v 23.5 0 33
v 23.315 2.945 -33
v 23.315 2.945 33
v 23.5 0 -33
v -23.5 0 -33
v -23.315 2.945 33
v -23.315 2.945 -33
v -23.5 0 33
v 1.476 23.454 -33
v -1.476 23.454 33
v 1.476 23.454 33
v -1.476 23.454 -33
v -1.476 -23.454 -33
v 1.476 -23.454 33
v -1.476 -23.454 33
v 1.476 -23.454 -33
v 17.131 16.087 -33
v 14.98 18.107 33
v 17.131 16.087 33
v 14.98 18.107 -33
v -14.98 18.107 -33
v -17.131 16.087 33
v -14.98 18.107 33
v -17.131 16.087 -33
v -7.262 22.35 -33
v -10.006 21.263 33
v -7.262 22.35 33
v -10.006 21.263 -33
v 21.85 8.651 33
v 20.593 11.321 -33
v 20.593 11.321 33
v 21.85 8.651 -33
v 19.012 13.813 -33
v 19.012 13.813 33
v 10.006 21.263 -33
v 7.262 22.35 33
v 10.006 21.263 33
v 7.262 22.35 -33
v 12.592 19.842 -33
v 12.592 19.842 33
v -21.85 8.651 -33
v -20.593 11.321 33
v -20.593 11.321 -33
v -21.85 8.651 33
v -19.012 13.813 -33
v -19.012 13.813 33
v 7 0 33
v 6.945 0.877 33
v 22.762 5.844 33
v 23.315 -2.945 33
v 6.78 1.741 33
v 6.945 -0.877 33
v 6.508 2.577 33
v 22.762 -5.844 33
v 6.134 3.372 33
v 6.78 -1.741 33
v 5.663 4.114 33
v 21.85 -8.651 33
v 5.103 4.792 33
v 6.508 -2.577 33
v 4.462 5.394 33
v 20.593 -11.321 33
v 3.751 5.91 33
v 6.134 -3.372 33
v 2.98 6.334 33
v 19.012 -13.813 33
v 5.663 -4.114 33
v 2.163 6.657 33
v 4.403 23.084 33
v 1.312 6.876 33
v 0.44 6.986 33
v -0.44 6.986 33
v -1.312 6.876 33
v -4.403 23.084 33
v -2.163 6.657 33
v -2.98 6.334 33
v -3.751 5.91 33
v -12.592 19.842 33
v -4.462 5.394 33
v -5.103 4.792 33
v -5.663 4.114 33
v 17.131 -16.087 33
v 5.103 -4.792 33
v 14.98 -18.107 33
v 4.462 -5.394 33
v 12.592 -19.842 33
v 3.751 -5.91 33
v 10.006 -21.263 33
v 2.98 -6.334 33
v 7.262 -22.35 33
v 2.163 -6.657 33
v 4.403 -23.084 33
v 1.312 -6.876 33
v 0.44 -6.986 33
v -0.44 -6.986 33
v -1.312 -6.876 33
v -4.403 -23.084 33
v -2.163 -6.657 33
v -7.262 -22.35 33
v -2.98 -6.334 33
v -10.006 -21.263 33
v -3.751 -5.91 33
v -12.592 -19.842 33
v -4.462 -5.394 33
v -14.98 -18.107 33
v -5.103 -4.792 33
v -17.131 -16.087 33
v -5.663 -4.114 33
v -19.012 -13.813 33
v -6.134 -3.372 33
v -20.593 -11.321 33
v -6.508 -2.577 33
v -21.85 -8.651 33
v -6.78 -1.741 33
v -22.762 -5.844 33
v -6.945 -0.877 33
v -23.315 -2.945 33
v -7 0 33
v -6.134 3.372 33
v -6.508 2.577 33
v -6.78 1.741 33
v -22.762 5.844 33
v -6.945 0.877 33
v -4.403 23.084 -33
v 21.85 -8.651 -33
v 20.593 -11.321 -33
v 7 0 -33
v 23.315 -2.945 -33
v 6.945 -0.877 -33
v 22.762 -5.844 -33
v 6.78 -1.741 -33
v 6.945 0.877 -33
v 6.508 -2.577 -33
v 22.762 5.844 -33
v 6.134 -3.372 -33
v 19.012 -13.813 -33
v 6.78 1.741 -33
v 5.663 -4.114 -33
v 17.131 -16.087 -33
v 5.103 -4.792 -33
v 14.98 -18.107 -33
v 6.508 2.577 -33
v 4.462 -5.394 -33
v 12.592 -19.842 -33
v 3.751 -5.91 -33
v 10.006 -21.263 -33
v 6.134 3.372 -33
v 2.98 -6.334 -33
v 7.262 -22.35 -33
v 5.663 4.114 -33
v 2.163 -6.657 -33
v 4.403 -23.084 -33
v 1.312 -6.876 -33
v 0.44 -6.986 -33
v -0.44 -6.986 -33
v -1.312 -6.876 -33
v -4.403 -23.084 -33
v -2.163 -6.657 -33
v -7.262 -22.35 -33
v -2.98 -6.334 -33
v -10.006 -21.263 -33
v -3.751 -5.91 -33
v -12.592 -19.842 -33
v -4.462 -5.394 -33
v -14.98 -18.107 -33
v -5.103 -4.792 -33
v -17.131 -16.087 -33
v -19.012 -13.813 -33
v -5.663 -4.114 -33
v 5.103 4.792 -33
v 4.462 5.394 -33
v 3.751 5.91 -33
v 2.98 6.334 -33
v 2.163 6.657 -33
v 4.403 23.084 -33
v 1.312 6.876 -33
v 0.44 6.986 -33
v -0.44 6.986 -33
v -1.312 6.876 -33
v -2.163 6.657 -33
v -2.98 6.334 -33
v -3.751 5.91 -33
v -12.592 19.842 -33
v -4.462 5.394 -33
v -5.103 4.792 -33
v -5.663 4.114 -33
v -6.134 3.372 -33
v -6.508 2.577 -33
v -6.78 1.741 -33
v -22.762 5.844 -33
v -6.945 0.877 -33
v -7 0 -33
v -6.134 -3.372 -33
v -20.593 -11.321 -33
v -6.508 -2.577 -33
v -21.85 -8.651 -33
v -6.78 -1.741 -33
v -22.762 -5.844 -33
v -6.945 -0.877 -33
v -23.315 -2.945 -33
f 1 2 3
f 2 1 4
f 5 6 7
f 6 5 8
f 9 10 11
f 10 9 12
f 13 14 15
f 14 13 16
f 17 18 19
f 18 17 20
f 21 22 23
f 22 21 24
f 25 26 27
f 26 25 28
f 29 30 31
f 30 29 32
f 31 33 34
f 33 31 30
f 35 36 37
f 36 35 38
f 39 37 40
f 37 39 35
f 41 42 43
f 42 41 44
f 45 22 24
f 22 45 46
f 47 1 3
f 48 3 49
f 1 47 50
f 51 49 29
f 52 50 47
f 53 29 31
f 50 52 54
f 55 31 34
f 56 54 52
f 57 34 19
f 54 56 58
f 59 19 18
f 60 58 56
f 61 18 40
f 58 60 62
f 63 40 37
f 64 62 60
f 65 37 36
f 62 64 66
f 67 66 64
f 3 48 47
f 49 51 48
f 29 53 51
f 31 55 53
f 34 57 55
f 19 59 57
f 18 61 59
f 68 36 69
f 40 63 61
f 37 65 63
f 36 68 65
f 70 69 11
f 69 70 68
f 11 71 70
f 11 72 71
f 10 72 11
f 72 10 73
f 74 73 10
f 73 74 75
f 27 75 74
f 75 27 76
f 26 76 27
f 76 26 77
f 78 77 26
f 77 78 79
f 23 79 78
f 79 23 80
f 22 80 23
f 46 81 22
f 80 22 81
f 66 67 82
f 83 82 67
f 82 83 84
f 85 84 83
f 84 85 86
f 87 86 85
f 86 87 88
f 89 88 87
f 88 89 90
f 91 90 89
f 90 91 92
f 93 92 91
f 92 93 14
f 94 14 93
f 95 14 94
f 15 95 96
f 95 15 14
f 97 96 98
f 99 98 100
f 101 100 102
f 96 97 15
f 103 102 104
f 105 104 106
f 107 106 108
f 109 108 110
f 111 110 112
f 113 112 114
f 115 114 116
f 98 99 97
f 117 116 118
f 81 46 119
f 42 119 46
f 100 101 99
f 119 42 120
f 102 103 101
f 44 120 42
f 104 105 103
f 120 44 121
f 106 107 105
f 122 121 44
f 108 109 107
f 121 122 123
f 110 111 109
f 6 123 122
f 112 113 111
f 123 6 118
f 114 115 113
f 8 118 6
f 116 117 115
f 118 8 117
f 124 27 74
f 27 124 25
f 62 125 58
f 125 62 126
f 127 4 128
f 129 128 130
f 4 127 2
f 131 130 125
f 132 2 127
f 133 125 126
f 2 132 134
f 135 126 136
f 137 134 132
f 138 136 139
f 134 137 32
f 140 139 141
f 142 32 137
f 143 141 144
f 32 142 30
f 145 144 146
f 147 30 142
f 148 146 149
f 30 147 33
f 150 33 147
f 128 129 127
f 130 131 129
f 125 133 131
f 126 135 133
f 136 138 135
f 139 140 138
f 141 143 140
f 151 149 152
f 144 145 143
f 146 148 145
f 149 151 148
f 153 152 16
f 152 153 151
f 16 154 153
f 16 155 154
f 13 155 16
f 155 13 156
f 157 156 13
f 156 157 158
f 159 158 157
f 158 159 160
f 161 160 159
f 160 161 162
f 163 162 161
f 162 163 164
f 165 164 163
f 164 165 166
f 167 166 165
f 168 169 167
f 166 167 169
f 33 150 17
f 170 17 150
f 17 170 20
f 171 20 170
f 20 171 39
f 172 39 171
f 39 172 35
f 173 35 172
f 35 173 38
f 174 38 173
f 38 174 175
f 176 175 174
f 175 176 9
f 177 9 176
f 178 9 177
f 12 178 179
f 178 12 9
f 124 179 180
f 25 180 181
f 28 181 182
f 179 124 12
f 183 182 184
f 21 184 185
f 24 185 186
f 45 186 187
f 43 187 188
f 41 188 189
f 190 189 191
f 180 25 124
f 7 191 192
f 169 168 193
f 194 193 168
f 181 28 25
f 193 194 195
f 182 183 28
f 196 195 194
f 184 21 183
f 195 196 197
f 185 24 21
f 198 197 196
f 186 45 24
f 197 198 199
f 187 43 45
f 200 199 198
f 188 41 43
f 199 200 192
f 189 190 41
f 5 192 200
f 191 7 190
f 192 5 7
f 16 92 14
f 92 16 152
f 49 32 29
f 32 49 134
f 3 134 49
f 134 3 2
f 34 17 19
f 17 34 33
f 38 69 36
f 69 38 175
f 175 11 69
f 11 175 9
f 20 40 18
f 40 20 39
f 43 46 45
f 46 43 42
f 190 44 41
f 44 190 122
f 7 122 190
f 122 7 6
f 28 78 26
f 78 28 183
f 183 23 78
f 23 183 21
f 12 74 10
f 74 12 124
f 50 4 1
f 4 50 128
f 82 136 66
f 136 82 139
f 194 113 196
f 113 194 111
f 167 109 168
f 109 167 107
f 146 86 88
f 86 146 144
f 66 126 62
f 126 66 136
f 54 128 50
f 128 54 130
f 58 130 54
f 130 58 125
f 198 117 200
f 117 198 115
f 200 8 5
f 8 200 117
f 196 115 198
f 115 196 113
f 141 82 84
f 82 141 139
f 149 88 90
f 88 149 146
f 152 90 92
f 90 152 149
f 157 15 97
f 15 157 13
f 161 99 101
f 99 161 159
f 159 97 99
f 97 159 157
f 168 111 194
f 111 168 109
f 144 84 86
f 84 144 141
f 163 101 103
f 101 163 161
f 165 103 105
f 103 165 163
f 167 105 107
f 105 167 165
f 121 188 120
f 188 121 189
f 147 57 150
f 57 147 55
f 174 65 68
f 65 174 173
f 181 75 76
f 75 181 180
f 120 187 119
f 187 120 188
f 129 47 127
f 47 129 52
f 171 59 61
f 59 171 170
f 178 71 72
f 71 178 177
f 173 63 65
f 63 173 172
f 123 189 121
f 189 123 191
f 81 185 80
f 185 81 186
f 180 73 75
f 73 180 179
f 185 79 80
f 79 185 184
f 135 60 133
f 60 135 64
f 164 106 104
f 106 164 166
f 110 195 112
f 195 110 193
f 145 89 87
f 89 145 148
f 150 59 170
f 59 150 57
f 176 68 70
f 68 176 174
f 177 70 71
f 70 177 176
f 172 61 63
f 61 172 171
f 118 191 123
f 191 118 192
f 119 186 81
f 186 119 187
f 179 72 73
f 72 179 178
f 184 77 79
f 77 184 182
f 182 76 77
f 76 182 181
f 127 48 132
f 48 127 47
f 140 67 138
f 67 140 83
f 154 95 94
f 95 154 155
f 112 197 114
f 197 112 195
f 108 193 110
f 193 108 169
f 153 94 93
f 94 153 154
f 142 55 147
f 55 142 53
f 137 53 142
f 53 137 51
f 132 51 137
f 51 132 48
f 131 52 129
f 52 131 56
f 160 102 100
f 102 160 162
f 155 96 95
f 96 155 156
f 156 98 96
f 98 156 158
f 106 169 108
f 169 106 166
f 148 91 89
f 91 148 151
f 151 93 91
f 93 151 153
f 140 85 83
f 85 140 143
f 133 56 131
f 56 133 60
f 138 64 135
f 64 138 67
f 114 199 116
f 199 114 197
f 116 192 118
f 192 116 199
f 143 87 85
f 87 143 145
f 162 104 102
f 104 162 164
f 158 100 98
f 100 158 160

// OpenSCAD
$fn = 50;


difference() {
	union() {
		translate(v = [0, 0, -33.0000000000]) {
			cylinder(h = 66, r = 23.5000000000);
		}
	}
	union() {
		translate(v = [0, 0, -100.0000000000]) {
			cylinder(h = 200, r = 7);
		}
	}
}
